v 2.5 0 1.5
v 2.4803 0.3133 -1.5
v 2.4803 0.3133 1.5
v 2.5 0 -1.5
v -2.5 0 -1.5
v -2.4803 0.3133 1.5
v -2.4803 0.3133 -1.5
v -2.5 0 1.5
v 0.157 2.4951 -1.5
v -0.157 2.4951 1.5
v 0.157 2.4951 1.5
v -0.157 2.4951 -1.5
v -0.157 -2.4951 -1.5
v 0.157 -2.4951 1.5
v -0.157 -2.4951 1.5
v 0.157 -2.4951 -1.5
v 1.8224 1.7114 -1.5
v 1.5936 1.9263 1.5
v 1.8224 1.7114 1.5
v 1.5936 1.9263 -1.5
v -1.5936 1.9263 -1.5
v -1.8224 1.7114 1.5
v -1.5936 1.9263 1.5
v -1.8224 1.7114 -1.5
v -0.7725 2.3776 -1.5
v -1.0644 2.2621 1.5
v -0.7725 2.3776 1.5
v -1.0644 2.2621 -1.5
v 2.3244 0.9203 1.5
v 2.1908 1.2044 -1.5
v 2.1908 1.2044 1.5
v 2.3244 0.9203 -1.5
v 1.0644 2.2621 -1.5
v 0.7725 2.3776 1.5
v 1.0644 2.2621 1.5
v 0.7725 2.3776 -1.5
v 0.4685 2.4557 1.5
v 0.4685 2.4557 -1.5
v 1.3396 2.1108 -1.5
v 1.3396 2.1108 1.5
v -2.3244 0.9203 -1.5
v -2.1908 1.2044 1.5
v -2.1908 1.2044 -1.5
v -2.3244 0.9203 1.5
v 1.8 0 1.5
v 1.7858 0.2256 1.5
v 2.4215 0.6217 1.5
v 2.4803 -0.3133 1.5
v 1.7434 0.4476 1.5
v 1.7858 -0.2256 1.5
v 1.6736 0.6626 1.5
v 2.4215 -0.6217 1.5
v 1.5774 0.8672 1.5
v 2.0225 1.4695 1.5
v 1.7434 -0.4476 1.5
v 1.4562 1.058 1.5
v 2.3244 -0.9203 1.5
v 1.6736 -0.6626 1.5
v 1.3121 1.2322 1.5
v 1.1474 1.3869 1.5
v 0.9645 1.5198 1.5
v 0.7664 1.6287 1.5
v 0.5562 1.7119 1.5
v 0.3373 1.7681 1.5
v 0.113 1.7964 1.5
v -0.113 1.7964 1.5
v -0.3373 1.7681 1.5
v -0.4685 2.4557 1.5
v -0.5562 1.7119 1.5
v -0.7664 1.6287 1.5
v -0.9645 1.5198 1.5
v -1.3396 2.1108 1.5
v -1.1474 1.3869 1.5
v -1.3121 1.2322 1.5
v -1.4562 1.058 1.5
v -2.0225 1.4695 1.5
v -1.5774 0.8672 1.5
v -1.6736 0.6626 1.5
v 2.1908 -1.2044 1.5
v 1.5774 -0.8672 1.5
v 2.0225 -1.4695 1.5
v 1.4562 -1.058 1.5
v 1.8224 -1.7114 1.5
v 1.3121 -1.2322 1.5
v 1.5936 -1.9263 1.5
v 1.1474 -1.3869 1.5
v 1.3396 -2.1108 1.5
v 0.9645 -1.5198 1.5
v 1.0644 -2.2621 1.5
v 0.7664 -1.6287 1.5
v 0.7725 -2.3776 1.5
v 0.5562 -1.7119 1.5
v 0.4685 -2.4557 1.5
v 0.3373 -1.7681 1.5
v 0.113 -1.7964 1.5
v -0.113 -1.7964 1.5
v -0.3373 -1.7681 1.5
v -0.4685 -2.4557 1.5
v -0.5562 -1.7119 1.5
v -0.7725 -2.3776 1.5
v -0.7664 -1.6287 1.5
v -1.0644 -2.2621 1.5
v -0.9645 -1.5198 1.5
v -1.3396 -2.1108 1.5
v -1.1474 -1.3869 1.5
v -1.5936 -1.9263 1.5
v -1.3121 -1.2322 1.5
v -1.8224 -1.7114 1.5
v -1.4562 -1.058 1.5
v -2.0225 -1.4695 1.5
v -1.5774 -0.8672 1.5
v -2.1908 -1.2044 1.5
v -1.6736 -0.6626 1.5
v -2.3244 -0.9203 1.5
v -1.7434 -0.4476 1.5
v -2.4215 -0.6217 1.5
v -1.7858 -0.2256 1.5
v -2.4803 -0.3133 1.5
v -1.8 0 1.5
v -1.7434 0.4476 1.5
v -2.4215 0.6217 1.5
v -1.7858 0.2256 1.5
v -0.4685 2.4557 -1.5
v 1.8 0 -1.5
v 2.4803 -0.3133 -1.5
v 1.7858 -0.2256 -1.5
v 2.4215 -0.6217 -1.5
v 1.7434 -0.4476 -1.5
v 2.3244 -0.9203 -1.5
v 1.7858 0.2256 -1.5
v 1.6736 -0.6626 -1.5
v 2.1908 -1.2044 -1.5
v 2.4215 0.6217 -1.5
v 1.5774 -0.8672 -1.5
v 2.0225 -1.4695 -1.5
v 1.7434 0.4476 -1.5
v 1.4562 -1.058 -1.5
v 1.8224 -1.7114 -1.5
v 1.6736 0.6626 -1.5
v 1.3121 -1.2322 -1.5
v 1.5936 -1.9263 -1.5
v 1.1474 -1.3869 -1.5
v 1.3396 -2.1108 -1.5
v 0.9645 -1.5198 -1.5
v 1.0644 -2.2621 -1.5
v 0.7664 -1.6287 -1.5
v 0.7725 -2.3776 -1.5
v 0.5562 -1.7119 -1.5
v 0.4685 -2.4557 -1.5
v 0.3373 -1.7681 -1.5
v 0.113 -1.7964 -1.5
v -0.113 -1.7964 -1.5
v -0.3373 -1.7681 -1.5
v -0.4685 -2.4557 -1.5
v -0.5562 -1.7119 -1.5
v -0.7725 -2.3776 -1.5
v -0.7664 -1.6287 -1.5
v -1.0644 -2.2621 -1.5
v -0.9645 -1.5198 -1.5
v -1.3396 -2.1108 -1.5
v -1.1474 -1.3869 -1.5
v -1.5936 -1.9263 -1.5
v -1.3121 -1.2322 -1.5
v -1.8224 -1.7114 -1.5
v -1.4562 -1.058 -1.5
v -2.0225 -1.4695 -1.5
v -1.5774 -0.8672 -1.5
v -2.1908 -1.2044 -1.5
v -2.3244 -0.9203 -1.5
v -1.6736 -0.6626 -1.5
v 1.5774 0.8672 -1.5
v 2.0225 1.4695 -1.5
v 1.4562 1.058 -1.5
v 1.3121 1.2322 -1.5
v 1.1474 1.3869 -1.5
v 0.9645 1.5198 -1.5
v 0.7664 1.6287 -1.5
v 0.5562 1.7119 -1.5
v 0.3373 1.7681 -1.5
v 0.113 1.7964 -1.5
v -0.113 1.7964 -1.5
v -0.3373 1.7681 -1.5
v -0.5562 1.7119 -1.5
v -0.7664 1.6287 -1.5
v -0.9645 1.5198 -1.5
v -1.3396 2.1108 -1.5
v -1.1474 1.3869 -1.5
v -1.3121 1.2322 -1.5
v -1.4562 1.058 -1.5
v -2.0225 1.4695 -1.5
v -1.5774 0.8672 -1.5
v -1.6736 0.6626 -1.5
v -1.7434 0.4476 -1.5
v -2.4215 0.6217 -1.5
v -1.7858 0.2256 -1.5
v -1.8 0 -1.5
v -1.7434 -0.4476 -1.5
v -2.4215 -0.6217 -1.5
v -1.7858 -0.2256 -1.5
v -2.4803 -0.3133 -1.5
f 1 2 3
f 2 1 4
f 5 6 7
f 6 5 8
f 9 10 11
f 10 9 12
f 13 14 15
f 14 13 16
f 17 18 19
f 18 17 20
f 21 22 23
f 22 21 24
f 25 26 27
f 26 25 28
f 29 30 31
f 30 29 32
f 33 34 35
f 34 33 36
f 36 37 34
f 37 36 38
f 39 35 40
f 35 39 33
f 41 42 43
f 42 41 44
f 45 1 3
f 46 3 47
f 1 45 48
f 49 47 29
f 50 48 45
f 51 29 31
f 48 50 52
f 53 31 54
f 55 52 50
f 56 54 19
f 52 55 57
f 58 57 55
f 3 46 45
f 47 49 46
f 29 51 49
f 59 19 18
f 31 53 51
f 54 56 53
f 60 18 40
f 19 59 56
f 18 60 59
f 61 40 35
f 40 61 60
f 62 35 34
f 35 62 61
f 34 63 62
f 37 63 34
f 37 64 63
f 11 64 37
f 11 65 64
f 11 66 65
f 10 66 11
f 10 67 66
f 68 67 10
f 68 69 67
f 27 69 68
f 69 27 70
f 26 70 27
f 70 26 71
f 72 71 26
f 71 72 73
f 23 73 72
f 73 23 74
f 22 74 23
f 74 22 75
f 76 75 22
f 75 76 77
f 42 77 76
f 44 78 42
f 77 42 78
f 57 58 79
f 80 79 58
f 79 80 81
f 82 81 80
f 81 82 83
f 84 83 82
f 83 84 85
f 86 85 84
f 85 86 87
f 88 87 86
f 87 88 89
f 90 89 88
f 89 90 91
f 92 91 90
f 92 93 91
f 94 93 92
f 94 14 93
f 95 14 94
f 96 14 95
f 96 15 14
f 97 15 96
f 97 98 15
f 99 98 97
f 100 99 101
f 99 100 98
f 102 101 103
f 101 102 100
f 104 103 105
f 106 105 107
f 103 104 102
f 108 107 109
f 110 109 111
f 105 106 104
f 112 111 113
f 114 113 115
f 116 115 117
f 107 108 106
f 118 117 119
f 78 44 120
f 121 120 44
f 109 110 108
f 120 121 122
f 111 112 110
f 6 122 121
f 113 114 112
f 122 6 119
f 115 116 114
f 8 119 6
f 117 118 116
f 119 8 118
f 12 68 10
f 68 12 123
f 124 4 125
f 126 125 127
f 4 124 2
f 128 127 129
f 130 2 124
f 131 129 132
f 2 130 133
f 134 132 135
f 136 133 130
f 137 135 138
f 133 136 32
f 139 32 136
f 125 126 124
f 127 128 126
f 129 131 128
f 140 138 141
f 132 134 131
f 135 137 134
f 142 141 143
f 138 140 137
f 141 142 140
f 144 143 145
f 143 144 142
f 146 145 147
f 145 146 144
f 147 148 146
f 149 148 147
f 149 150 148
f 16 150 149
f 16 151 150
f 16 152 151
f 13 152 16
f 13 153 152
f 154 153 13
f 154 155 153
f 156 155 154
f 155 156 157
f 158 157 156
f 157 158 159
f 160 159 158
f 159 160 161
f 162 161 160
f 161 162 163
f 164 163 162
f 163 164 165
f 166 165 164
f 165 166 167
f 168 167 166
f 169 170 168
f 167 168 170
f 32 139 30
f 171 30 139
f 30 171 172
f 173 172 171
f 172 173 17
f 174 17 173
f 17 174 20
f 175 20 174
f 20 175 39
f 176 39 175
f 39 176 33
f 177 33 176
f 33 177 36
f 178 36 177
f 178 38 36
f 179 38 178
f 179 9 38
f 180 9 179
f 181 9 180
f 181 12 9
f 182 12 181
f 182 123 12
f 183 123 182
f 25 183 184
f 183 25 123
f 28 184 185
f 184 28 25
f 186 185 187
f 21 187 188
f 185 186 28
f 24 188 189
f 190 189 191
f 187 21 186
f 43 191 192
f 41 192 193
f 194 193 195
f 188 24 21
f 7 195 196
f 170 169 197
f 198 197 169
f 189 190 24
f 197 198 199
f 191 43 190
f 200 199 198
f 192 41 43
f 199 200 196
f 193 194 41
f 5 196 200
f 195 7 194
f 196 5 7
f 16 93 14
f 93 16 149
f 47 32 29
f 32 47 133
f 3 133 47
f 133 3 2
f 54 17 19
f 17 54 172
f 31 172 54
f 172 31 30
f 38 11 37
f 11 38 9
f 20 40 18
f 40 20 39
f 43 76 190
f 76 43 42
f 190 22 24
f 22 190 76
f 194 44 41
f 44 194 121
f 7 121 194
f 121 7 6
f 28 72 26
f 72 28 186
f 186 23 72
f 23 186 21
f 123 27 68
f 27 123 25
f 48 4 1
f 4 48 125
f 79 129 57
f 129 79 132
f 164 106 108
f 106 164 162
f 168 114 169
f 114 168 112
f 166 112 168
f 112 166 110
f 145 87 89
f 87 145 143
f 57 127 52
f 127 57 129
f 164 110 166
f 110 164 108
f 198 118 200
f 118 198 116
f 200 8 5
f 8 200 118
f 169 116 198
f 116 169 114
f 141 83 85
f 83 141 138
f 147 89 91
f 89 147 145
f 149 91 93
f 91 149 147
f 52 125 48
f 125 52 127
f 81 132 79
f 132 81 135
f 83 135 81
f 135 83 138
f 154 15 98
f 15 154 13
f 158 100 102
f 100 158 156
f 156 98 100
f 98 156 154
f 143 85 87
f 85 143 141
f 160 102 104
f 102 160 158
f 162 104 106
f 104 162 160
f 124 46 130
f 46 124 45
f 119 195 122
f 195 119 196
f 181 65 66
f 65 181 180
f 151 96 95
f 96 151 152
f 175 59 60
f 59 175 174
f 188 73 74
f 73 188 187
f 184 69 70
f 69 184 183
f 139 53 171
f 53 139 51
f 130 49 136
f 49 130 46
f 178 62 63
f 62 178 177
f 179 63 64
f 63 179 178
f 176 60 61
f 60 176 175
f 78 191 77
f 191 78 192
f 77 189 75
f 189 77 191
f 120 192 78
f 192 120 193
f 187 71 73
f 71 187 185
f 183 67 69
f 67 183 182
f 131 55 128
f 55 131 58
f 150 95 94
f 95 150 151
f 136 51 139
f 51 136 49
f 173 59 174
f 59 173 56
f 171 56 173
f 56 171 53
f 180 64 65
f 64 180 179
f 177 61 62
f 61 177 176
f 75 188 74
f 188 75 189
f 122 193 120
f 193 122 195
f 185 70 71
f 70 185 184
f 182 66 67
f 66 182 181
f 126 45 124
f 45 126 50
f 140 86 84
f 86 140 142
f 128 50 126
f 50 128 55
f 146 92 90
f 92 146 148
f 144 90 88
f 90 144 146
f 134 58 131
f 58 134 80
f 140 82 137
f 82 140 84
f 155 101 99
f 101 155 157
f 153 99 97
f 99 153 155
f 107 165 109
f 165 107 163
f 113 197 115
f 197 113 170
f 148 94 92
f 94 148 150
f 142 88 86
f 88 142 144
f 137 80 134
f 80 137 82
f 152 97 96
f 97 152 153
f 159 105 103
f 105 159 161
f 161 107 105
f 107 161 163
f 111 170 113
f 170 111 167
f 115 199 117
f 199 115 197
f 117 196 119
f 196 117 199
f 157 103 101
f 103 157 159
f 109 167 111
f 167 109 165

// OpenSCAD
$fn = 50;


difference() {
	union() {
		translate(v = [0, 0, -1.5000000000]) {
			cylinder(h = 3, r = 2.5000000000);
		}
	}
	union() {
		translate(v = [0, 0, -100.0000000000]) {
			cylinder(h = 200, r = 1.8000000000);
		}
	}
}
